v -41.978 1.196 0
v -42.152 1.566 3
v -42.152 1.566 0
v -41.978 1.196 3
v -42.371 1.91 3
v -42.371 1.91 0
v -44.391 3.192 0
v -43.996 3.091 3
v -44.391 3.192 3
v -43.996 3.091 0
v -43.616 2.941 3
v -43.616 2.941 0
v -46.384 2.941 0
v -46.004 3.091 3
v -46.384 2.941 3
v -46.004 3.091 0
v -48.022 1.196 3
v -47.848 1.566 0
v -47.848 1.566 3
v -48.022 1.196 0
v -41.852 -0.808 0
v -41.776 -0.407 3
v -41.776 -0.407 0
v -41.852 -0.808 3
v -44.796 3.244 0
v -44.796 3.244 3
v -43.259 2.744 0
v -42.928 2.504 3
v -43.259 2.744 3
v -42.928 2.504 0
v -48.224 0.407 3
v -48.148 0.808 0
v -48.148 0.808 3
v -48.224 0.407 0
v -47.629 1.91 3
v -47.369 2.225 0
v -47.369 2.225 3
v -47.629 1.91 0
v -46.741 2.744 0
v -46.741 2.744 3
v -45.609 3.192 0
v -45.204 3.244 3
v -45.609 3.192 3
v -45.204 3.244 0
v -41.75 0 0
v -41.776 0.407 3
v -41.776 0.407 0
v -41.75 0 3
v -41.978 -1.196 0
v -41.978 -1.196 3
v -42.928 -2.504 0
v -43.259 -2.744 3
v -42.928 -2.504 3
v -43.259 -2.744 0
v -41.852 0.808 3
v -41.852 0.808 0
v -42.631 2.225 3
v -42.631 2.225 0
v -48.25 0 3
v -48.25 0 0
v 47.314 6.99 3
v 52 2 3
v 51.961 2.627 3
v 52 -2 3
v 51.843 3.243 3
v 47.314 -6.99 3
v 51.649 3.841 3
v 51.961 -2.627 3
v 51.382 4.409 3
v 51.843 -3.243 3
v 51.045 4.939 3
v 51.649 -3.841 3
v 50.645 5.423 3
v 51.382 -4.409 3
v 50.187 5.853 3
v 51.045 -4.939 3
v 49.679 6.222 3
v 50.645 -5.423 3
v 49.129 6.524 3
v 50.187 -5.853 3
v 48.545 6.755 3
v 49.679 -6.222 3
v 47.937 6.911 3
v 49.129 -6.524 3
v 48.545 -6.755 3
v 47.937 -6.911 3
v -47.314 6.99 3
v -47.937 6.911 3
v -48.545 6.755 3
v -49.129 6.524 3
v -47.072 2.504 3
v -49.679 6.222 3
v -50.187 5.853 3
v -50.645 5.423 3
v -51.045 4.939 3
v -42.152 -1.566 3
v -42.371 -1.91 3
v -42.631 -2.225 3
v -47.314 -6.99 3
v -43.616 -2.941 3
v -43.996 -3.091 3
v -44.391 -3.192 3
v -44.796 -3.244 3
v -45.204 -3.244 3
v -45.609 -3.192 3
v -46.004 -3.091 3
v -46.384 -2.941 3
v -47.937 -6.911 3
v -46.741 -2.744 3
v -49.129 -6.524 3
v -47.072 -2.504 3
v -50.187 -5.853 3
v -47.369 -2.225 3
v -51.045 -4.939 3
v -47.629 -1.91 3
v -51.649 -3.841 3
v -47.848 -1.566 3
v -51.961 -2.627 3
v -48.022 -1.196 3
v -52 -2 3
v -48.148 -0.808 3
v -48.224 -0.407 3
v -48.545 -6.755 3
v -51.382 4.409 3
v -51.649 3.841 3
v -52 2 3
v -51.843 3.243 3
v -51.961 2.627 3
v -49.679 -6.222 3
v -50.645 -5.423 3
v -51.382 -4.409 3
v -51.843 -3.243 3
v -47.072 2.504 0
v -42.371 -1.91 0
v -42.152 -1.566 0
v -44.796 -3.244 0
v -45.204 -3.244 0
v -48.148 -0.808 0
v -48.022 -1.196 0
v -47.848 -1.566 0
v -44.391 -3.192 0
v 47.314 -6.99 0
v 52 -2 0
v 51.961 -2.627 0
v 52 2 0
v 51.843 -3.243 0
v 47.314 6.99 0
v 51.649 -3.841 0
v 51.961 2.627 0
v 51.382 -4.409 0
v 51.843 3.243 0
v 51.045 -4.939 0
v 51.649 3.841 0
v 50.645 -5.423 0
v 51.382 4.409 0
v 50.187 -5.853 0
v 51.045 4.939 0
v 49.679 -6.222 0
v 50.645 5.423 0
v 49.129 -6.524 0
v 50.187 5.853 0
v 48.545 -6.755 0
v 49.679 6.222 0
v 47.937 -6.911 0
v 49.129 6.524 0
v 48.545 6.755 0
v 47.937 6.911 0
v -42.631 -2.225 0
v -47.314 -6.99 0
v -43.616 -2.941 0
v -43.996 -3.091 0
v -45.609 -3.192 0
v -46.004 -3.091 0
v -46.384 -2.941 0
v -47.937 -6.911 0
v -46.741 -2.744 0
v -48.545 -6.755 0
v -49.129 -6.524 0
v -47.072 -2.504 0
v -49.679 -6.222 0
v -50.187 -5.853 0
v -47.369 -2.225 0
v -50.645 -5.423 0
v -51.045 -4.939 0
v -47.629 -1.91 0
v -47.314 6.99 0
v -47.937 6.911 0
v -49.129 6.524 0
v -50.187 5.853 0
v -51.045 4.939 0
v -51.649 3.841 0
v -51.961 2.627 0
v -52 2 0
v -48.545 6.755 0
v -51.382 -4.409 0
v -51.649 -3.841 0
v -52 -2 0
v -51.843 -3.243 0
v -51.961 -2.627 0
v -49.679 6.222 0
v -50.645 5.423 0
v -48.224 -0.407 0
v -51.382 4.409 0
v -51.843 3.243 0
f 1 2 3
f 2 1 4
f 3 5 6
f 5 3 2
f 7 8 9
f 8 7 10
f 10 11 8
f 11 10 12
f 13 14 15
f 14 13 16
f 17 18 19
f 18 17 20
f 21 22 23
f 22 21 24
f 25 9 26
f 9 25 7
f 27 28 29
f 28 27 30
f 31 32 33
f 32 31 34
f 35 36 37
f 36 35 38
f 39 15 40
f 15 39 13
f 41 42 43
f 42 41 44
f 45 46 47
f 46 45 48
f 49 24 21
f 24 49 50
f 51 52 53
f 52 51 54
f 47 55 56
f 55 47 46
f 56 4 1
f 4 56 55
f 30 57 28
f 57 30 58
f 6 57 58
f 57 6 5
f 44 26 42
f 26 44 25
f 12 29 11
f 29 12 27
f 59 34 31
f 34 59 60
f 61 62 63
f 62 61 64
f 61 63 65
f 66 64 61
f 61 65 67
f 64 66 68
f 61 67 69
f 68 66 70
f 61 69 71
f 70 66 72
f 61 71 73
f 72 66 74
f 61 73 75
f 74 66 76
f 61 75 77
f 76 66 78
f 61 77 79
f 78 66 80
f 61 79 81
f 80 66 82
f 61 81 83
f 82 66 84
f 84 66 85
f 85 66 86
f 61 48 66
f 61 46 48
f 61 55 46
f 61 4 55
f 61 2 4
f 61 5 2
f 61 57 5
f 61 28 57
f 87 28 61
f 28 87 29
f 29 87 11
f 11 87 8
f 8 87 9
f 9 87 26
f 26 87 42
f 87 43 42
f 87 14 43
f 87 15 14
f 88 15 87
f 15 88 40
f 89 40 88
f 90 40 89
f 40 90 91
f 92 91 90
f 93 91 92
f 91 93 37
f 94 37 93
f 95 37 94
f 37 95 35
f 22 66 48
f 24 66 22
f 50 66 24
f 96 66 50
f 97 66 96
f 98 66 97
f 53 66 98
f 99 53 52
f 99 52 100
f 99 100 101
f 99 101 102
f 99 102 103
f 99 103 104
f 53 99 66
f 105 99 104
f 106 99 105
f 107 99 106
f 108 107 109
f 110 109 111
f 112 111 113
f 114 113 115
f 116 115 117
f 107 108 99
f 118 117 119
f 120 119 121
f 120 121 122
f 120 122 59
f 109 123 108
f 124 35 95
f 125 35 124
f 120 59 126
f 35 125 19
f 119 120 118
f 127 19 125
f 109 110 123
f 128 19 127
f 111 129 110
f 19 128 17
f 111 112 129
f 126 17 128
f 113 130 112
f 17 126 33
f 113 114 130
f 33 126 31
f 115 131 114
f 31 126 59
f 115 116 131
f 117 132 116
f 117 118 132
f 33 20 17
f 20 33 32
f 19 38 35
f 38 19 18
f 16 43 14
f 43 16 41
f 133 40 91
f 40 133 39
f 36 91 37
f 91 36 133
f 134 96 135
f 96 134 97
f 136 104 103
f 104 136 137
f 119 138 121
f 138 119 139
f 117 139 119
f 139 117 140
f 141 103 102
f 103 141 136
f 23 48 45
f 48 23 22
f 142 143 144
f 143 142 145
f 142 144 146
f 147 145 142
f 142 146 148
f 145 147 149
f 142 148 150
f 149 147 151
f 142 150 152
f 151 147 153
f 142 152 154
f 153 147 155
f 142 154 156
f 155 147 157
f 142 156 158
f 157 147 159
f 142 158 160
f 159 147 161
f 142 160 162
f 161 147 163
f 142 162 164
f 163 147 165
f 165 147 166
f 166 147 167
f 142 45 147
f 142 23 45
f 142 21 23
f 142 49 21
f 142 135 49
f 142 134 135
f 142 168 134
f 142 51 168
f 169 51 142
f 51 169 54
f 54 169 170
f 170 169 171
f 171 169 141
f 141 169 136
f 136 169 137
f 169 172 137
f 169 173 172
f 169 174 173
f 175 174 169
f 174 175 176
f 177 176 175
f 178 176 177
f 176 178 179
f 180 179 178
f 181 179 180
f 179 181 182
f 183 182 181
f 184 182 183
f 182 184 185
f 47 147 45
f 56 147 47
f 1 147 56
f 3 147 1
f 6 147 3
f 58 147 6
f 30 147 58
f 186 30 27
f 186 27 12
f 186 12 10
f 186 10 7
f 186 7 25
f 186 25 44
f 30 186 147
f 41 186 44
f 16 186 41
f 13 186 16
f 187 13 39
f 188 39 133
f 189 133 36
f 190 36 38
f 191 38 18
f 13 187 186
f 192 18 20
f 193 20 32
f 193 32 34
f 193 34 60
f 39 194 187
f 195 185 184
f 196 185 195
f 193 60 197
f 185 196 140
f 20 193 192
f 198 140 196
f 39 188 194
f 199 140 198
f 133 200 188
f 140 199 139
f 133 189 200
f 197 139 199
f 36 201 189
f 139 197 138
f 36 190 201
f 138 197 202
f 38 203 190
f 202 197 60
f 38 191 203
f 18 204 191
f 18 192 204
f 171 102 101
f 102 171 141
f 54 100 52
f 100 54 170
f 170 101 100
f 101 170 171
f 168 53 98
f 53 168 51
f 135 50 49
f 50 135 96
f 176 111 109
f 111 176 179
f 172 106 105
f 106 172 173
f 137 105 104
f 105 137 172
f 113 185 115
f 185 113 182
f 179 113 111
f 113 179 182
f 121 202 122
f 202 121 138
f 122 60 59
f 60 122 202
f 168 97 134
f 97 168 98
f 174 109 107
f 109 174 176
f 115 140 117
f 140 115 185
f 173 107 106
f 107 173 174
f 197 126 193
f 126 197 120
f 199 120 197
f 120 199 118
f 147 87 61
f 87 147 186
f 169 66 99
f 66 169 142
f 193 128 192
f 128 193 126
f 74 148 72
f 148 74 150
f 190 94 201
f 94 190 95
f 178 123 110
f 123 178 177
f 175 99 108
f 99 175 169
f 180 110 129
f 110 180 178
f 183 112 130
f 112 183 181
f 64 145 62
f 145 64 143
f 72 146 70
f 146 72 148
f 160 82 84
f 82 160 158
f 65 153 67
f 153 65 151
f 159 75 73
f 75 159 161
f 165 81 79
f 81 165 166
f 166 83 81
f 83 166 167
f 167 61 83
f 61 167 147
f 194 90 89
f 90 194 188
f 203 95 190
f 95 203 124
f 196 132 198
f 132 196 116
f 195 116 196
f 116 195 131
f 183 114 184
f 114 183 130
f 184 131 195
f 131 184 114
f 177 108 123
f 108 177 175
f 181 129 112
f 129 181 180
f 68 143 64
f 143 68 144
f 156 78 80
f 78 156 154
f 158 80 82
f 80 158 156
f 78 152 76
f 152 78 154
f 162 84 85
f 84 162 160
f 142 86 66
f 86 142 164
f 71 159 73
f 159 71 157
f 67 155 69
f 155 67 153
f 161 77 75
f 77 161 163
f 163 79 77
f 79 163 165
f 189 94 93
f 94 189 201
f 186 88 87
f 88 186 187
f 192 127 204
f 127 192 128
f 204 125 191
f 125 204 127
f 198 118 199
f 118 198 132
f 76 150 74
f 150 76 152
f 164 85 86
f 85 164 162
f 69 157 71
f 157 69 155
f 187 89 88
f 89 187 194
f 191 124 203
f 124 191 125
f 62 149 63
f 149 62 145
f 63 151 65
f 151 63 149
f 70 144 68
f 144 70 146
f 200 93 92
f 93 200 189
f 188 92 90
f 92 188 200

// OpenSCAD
$fn = 50;


difference() {
	union() {
		hull() {
			translate(v = [-47.0000000000, 2.0000000000, 0]) {
				cylinder(h = 3, r = 5);
			}
			translate(v = [47.0000000000, 2.0000000000, 0]) {
				cylinder(h = 3, r = 5);
			}
			translate(v = [-47.0000000000, -2.0000000000, 0]) {
				cylinder(h = 3, r = 5);
			}
			translate(v = [47.0000000000, -2.0000000000, 0]) {
				cylinder(h = 3, r = 5);
			}
		}
	}
	union() {
		translate(v = [-45.0000000000, 0.0000000000, 0]) {
			cylinder(h = 3, r = 3.2500000000);
		}
		translate(v = [-45.0000000000, 0.0000000000, 0]) {
			cylinder(h = 3, r = 1.8000000000);
		}
		translate(v = [-45.0000000000, 0.0000000000, 0]) {
			cylinder(h = 3, r = 1.8000000000);
		}
		translate(v = [-45.0000000000, 0.0000000000, 0]) {
			cylinder(h = 3, r = 1.8000000000);
		}
	}
}
